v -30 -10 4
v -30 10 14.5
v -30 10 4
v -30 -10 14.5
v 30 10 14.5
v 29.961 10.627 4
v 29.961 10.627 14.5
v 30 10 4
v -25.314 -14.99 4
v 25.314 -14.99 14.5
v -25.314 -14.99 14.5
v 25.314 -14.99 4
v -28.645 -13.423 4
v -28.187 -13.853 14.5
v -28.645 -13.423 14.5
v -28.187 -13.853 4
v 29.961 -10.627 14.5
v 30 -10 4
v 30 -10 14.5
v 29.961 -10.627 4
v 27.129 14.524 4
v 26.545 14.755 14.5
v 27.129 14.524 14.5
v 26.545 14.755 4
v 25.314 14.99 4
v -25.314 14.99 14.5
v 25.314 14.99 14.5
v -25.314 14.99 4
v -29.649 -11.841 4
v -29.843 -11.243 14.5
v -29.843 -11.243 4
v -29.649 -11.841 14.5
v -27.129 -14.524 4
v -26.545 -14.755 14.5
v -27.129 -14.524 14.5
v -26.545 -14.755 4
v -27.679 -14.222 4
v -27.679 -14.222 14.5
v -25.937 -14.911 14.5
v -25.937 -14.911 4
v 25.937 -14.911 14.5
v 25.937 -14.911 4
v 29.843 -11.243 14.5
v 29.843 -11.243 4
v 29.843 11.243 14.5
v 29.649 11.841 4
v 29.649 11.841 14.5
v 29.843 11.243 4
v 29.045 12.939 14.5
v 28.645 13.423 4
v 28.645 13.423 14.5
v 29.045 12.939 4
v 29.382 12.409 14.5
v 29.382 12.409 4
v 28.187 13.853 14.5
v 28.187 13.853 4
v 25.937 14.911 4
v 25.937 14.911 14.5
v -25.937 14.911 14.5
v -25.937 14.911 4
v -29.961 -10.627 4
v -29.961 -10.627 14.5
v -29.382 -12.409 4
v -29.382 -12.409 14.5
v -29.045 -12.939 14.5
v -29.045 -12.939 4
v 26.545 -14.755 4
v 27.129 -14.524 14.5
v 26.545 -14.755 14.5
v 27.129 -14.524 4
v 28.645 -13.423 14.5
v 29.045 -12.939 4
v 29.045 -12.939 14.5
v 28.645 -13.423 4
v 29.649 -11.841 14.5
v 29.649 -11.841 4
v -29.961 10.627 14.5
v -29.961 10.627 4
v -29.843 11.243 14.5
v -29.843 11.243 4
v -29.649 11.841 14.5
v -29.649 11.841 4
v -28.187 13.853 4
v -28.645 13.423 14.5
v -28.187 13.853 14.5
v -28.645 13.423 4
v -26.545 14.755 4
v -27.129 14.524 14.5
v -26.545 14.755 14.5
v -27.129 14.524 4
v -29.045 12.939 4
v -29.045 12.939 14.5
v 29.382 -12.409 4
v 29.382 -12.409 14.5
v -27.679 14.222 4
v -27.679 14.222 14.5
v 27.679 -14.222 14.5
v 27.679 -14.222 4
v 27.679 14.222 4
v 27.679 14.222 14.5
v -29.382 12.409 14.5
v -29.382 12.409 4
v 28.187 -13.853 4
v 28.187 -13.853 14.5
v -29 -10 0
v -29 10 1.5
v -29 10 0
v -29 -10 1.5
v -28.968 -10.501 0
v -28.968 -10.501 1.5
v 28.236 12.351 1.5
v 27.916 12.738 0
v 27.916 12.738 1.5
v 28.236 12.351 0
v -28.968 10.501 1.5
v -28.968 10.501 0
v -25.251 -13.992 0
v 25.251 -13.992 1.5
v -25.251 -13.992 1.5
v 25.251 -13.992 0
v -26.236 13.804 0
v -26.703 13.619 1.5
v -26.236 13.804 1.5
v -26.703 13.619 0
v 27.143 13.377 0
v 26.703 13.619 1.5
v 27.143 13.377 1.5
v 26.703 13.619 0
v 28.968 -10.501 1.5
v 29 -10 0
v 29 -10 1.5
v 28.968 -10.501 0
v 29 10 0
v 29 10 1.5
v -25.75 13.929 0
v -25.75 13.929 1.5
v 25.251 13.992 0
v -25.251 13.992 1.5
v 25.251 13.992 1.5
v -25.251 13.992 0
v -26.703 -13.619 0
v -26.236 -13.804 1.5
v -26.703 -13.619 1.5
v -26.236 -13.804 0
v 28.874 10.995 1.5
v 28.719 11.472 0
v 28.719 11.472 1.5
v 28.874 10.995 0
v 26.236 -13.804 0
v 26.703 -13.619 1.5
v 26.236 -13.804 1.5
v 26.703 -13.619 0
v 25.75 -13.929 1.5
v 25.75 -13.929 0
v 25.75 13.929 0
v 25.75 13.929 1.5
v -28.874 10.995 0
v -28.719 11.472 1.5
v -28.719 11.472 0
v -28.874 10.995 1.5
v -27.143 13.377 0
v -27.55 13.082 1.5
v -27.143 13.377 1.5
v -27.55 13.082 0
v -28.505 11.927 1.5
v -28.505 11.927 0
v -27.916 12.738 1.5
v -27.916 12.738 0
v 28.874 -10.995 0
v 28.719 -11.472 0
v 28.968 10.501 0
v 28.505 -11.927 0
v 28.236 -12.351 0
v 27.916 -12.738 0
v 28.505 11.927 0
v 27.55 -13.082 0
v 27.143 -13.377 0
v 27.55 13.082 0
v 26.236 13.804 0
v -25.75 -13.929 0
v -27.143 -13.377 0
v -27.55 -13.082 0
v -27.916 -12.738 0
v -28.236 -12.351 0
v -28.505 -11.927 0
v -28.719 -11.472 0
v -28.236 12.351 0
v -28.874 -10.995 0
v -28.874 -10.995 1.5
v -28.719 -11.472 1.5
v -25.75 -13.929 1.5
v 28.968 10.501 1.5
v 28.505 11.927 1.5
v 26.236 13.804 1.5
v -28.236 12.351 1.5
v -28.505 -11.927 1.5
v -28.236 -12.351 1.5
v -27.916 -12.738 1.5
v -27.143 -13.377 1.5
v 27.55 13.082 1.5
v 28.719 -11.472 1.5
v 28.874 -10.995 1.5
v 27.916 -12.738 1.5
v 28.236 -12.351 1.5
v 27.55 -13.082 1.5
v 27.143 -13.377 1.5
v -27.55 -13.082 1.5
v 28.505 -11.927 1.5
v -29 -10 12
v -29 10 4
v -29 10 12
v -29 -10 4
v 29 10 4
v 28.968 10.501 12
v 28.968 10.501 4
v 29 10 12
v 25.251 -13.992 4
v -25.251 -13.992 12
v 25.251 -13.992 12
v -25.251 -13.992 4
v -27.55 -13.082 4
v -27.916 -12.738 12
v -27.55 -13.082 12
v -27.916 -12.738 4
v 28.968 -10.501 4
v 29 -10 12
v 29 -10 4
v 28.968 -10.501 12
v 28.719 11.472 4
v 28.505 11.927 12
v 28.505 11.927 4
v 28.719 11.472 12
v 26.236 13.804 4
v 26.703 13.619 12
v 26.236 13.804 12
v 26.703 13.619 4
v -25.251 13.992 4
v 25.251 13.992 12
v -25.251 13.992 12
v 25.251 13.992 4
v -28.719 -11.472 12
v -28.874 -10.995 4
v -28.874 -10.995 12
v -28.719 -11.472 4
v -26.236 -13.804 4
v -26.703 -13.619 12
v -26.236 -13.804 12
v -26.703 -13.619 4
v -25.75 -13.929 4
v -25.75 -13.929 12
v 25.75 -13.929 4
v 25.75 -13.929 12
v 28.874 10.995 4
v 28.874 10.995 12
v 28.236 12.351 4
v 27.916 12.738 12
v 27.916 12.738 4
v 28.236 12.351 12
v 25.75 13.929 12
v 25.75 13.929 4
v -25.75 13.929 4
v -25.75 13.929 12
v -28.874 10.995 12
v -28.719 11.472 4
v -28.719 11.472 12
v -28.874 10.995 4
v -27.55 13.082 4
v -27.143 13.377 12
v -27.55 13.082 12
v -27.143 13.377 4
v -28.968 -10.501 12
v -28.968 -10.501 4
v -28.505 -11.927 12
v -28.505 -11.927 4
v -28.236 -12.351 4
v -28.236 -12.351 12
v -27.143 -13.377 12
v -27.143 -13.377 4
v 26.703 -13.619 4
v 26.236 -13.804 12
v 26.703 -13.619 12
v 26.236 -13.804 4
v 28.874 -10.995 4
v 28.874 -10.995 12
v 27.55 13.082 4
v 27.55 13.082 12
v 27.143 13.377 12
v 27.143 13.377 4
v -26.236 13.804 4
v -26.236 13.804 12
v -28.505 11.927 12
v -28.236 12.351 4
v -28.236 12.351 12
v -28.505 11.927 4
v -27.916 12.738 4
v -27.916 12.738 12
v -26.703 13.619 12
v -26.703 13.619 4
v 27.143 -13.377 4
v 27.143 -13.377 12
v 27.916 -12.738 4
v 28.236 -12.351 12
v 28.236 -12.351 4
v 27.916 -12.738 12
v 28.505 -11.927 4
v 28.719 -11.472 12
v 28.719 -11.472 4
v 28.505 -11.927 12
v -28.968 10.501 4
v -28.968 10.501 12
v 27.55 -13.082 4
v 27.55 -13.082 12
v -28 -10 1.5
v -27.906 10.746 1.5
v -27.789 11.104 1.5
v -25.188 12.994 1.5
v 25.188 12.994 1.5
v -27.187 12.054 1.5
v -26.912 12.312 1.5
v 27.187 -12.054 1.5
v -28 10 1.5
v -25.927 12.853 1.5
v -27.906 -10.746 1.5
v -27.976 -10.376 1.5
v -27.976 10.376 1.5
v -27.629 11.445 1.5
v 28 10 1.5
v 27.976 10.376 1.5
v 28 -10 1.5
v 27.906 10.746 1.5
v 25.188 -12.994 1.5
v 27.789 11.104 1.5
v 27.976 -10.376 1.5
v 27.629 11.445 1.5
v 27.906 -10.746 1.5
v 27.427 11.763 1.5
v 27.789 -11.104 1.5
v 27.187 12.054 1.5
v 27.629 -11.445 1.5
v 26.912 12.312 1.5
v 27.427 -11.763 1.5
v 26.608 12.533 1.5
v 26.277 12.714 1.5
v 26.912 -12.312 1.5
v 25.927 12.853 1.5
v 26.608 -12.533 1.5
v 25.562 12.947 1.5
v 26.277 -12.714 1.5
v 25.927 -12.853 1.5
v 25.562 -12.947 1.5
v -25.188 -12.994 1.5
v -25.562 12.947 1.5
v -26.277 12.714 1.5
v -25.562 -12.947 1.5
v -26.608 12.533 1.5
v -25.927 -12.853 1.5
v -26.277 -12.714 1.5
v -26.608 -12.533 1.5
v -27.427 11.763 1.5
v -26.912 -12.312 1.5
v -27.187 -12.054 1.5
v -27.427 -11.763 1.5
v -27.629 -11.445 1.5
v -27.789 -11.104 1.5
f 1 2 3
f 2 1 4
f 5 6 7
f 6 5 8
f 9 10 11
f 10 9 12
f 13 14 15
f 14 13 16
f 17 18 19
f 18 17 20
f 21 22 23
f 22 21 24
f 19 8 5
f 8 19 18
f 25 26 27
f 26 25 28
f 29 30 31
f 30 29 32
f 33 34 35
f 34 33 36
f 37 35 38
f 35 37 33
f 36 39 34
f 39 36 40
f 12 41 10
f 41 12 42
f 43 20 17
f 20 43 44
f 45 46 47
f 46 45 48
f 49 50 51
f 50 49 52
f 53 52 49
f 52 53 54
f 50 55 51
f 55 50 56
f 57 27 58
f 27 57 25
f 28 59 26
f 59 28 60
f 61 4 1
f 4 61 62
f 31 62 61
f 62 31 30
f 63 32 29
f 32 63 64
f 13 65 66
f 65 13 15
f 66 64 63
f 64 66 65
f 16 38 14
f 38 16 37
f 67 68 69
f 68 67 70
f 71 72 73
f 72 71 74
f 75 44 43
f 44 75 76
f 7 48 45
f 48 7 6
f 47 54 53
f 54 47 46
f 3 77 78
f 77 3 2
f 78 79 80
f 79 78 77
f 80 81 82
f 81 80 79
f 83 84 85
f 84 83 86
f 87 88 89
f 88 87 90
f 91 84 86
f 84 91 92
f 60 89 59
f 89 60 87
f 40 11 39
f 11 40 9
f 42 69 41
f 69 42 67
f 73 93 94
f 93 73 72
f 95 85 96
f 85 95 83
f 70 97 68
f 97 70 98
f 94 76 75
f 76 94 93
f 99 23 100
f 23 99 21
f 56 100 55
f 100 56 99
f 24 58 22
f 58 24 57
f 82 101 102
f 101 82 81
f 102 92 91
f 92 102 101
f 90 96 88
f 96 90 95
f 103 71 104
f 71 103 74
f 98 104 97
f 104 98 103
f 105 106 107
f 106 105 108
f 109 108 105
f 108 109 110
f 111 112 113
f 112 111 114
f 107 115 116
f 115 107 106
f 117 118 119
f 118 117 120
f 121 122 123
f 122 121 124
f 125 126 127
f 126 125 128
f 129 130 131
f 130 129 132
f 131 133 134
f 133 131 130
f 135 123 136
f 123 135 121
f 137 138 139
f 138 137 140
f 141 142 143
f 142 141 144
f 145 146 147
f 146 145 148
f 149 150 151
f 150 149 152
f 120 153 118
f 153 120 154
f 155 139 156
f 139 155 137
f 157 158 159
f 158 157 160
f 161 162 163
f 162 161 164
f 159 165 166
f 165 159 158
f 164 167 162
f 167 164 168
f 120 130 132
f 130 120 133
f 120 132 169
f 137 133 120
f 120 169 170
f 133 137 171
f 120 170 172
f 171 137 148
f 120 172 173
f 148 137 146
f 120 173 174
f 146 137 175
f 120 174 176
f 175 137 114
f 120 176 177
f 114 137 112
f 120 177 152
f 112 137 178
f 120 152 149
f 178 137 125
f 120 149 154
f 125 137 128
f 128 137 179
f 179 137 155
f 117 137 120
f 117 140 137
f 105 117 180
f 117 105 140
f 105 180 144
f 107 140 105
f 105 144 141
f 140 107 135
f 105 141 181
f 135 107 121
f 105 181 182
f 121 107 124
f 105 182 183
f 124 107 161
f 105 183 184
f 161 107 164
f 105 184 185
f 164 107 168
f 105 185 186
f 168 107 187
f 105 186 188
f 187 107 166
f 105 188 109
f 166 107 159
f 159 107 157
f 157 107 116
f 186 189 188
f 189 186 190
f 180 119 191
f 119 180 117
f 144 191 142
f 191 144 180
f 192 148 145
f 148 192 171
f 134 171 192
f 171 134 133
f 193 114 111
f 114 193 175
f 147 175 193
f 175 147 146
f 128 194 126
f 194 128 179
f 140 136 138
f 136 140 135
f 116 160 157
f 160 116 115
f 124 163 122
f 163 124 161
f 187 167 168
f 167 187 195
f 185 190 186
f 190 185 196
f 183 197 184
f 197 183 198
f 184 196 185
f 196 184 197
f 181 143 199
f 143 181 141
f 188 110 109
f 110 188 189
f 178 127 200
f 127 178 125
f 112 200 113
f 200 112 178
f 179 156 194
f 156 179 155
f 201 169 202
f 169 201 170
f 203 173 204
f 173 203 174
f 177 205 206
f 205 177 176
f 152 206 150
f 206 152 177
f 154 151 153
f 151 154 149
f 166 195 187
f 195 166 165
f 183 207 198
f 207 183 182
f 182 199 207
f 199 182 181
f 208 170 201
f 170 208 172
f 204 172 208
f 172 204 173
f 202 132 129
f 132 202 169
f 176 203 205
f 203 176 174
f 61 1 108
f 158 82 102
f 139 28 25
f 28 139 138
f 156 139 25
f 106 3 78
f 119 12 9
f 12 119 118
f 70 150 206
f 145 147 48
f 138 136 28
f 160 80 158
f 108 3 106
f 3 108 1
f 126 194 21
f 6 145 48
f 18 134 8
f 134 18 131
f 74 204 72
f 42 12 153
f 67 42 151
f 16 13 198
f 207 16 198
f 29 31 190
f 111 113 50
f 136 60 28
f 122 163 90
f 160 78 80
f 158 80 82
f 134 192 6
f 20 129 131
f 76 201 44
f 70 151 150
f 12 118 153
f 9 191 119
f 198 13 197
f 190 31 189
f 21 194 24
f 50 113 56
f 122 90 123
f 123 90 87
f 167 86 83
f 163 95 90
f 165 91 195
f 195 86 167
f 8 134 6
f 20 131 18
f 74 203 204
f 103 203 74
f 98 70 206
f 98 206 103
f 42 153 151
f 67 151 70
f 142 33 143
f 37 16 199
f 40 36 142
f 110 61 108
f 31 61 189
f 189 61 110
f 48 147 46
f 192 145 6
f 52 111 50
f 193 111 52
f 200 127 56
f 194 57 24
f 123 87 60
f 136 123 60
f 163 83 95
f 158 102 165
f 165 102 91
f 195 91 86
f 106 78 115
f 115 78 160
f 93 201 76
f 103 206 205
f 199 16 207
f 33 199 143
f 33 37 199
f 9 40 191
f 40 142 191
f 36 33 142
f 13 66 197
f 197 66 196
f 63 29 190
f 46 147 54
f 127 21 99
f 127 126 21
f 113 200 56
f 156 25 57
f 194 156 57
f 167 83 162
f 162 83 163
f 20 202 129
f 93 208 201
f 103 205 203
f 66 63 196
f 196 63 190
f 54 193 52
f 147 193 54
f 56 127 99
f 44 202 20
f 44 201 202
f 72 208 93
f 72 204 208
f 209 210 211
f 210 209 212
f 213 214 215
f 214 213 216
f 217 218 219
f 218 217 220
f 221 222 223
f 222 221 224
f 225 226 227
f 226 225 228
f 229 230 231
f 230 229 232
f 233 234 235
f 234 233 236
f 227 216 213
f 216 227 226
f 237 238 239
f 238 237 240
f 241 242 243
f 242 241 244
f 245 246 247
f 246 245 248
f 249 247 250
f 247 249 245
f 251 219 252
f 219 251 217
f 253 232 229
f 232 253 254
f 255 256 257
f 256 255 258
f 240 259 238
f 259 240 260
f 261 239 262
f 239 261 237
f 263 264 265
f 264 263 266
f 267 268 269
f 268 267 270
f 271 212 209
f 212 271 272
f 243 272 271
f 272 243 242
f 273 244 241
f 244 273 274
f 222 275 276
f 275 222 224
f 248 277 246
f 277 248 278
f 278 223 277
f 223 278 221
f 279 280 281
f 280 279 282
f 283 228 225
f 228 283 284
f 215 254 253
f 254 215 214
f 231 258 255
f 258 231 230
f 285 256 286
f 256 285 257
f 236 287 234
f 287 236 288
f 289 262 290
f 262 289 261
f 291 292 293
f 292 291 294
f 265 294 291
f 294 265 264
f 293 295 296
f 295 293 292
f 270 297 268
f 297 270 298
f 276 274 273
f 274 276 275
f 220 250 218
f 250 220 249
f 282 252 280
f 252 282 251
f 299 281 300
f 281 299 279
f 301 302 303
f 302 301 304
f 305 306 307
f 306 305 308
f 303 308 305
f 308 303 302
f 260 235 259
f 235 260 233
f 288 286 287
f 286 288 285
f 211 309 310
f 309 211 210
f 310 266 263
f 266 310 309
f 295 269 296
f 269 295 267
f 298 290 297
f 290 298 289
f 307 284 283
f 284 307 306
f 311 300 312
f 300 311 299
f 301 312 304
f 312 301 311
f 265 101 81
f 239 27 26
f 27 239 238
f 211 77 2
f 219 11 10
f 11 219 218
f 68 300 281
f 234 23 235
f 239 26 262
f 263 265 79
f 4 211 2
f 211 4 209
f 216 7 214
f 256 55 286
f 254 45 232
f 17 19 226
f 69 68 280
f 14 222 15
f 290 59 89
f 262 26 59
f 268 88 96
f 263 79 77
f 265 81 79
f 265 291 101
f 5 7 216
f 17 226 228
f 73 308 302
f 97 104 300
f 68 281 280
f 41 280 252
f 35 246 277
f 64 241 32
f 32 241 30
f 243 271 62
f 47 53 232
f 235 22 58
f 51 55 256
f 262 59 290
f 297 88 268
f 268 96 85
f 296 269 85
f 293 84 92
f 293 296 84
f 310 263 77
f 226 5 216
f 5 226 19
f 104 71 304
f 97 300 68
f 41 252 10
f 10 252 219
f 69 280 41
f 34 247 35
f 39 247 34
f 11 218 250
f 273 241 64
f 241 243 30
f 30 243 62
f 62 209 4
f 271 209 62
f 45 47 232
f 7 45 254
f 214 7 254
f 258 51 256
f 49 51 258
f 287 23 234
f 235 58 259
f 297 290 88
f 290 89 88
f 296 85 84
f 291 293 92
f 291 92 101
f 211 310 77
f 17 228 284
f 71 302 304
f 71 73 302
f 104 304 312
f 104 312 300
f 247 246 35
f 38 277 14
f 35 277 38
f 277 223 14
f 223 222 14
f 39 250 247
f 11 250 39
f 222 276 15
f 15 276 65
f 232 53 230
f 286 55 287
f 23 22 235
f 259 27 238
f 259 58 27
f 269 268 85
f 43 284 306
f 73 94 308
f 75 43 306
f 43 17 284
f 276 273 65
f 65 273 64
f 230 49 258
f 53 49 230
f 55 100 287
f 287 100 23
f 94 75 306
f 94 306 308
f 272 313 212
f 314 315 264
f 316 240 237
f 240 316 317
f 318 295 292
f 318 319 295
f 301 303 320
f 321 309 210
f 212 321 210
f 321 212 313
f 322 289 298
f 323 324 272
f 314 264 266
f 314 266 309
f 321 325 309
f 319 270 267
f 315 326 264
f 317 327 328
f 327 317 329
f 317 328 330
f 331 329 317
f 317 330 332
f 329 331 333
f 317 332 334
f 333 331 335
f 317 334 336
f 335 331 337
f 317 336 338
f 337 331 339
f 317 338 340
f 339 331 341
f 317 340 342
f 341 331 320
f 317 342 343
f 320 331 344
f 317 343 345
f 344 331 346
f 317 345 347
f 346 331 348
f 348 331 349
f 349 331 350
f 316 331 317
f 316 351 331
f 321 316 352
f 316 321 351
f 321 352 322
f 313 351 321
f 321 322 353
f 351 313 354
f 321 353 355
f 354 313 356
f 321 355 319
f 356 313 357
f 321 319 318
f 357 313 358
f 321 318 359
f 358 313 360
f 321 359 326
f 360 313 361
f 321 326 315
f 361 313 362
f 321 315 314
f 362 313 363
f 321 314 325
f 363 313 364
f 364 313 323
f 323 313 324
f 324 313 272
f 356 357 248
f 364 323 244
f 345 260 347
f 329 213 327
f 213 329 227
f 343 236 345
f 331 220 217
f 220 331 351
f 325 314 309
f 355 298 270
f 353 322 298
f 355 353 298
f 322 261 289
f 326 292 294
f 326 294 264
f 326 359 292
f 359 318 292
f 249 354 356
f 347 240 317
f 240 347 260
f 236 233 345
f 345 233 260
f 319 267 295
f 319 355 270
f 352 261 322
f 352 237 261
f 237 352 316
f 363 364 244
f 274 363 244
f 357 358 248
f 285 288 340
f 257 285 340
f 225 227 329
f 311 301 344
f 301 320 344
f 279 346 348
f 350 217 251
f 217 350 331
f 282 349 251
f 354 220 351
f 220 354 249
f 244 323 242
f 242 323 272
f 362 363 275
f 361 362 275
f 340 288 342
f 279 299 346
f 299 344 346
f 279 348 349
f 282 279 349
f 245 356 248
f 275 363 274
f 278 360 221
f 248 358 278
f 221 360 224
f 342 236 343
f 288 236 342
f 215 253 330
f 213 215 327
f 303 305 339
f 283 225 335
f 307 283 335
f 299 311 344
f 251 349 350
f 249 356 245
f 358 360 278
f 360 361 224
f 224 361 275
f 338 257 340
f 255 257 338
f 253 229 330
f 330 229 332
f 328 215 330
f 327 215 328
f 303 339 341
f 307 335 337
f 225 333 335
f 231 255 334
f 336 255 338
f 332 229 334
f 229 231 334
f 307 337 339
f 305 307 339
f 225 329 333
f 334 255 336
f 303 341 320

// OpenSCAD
$fn = 50;


difference() {
	union() {
		translate(v = [0, 0, 4.0000000000]) {
			hull() {
				translate(v = [-25.0000000000, 10.0000000000, 0]) {
					cylinder(h = 10.5000000000, r = 5);
				}
				translate(v = [25.0000000000, 10.0000000000, 0]) {
					cylinder(h = 10.5000000000, r = 5);
				}
				translate(v = [-25.0000000000, -10.0000000000, 0]) {
					cylinder(h = 10.5000000000, r = 5);
				}
				translate(v = [25.0000000000, -10.0000000000, 0]) {
					cylinder(h = 10.5000000000, r = 5);
				}
			}
		}
		hull() {
			translate(v = [-25.0000000000, 10.0000000000, 0]) {
				cylinder(h = 1.5000000000, r = 4);
			}
			translate(v = [25.0000000000, 10.0000000000, 0]) {
				cylinder(h = 1.5000000000, r = 4);
			}
			translate(v = [-25.0000000000, -10.0000000000, 0]) {
				cylinder(h = 1.5000000000, r = 4);
			}
			translate(v = [25.0000000000, -10.0000000000, 0]) {
				cylinder(h = 1.5000000000, r = 4);
			}
		}
		translate(v = [0, 0, 1.5000000000]) {
			hull() {
				translate(v = [-25.0000000000, 10.0000000000, 0]) {
					cylinder(h = 2.5000000000, r1 = 4, r2 = 5.0000000000);
				}
				translate(v = [25.0000000000, 10.0000000000, 0]) {
					cylinder(h = 2.5000000000, r1 = 4, r2 = 5.0000000000);
				}
				translate(v = [-25.0000000000, -10.0000000000, 0]) {
					cylinder(h = 2.5000000000, r1 = 4, r2 = 5.0000000000);
				}
				translate(v = [25.0000000000, -10.0000000000, 0]) {
					cylinder(h = 2.5000000000, r1 = 4, r2 = 5.0000000000);
				}
			}
		}
	}
	union() {
		translate(v = [0, 0, 4.0000000000]) {
			#hull() {
				translate(v = [-25.0000000000, 10.0000000000, 0]) {
					cylinder(h = 10.5000000000, r = 4);
				}
				translate(v = [25.0000000000, 10.0000000000, 0]) {
					cylinder(h = 10.5000000000, r = 4);
				}
				translate(v = [-25.0000000000, -10.0000000000, 0]) {
					cylinder(h = 10.5000000000, r = 4);
				}
				translate(v = [25.0000000000, -10.0000000000, 0]) {
					cylinder(h = 10.5000000000, r = 4);
				}
			}
		}
		translate(v = [0, 0, 12]) {
			hull() {
				translate(v = [-25.0000000000, 10.0000000000, 0]) {
					cylinder(h = 2.5000000000, r1 = 4, r2 = 5.0000000000);
				}
				translate(v = [25.0000000000, 10.0000000000, 0]) {
					cylinder(h = 2.5000000000, r1 = 4, r2 = 5.0000000000);
				}
				translate(v = [-25.0000000000, -10.0000000000, 0]) {
					cylinder(h = 2.5000000000, r1 = 4, r2 = 5.0000000000);
				}
				translate(v = [25.0000000000, -10.0000000000, 0]) {
					cylinder(h = 2.5000000000, r1 = 4, r2 = 5.0000000000);
				}
			}
		}
		translate(v = [0, 0, 1.5000000000]) {
			#hull() {
				translate(v = [-25.0000000000, 10.0000000000, 0]) {
					cylinder(h = 2.5000000000, r1 = 3, r2 = 4.0000000000);
				}
				translate(v = [25.0000000000, 10.0000000000, 0]) {
					cylinder(h = 2.5000000000, r1 = 3, r2 = 4.0000000000);
				}
				translate(v = [-25.0000000000, -10.0000000000, 0]) {
					cylinder(h = 2.5000000000, r1 = 3, r2 = 4.0000000000);
				}
				translate(v = [25.0000000000, -10.0000000000, 0]) {
					cylinder(h = 2.5000000000, r1 = 3, r2 = 4.0000000000);
				}
			}
		}
	}
}
